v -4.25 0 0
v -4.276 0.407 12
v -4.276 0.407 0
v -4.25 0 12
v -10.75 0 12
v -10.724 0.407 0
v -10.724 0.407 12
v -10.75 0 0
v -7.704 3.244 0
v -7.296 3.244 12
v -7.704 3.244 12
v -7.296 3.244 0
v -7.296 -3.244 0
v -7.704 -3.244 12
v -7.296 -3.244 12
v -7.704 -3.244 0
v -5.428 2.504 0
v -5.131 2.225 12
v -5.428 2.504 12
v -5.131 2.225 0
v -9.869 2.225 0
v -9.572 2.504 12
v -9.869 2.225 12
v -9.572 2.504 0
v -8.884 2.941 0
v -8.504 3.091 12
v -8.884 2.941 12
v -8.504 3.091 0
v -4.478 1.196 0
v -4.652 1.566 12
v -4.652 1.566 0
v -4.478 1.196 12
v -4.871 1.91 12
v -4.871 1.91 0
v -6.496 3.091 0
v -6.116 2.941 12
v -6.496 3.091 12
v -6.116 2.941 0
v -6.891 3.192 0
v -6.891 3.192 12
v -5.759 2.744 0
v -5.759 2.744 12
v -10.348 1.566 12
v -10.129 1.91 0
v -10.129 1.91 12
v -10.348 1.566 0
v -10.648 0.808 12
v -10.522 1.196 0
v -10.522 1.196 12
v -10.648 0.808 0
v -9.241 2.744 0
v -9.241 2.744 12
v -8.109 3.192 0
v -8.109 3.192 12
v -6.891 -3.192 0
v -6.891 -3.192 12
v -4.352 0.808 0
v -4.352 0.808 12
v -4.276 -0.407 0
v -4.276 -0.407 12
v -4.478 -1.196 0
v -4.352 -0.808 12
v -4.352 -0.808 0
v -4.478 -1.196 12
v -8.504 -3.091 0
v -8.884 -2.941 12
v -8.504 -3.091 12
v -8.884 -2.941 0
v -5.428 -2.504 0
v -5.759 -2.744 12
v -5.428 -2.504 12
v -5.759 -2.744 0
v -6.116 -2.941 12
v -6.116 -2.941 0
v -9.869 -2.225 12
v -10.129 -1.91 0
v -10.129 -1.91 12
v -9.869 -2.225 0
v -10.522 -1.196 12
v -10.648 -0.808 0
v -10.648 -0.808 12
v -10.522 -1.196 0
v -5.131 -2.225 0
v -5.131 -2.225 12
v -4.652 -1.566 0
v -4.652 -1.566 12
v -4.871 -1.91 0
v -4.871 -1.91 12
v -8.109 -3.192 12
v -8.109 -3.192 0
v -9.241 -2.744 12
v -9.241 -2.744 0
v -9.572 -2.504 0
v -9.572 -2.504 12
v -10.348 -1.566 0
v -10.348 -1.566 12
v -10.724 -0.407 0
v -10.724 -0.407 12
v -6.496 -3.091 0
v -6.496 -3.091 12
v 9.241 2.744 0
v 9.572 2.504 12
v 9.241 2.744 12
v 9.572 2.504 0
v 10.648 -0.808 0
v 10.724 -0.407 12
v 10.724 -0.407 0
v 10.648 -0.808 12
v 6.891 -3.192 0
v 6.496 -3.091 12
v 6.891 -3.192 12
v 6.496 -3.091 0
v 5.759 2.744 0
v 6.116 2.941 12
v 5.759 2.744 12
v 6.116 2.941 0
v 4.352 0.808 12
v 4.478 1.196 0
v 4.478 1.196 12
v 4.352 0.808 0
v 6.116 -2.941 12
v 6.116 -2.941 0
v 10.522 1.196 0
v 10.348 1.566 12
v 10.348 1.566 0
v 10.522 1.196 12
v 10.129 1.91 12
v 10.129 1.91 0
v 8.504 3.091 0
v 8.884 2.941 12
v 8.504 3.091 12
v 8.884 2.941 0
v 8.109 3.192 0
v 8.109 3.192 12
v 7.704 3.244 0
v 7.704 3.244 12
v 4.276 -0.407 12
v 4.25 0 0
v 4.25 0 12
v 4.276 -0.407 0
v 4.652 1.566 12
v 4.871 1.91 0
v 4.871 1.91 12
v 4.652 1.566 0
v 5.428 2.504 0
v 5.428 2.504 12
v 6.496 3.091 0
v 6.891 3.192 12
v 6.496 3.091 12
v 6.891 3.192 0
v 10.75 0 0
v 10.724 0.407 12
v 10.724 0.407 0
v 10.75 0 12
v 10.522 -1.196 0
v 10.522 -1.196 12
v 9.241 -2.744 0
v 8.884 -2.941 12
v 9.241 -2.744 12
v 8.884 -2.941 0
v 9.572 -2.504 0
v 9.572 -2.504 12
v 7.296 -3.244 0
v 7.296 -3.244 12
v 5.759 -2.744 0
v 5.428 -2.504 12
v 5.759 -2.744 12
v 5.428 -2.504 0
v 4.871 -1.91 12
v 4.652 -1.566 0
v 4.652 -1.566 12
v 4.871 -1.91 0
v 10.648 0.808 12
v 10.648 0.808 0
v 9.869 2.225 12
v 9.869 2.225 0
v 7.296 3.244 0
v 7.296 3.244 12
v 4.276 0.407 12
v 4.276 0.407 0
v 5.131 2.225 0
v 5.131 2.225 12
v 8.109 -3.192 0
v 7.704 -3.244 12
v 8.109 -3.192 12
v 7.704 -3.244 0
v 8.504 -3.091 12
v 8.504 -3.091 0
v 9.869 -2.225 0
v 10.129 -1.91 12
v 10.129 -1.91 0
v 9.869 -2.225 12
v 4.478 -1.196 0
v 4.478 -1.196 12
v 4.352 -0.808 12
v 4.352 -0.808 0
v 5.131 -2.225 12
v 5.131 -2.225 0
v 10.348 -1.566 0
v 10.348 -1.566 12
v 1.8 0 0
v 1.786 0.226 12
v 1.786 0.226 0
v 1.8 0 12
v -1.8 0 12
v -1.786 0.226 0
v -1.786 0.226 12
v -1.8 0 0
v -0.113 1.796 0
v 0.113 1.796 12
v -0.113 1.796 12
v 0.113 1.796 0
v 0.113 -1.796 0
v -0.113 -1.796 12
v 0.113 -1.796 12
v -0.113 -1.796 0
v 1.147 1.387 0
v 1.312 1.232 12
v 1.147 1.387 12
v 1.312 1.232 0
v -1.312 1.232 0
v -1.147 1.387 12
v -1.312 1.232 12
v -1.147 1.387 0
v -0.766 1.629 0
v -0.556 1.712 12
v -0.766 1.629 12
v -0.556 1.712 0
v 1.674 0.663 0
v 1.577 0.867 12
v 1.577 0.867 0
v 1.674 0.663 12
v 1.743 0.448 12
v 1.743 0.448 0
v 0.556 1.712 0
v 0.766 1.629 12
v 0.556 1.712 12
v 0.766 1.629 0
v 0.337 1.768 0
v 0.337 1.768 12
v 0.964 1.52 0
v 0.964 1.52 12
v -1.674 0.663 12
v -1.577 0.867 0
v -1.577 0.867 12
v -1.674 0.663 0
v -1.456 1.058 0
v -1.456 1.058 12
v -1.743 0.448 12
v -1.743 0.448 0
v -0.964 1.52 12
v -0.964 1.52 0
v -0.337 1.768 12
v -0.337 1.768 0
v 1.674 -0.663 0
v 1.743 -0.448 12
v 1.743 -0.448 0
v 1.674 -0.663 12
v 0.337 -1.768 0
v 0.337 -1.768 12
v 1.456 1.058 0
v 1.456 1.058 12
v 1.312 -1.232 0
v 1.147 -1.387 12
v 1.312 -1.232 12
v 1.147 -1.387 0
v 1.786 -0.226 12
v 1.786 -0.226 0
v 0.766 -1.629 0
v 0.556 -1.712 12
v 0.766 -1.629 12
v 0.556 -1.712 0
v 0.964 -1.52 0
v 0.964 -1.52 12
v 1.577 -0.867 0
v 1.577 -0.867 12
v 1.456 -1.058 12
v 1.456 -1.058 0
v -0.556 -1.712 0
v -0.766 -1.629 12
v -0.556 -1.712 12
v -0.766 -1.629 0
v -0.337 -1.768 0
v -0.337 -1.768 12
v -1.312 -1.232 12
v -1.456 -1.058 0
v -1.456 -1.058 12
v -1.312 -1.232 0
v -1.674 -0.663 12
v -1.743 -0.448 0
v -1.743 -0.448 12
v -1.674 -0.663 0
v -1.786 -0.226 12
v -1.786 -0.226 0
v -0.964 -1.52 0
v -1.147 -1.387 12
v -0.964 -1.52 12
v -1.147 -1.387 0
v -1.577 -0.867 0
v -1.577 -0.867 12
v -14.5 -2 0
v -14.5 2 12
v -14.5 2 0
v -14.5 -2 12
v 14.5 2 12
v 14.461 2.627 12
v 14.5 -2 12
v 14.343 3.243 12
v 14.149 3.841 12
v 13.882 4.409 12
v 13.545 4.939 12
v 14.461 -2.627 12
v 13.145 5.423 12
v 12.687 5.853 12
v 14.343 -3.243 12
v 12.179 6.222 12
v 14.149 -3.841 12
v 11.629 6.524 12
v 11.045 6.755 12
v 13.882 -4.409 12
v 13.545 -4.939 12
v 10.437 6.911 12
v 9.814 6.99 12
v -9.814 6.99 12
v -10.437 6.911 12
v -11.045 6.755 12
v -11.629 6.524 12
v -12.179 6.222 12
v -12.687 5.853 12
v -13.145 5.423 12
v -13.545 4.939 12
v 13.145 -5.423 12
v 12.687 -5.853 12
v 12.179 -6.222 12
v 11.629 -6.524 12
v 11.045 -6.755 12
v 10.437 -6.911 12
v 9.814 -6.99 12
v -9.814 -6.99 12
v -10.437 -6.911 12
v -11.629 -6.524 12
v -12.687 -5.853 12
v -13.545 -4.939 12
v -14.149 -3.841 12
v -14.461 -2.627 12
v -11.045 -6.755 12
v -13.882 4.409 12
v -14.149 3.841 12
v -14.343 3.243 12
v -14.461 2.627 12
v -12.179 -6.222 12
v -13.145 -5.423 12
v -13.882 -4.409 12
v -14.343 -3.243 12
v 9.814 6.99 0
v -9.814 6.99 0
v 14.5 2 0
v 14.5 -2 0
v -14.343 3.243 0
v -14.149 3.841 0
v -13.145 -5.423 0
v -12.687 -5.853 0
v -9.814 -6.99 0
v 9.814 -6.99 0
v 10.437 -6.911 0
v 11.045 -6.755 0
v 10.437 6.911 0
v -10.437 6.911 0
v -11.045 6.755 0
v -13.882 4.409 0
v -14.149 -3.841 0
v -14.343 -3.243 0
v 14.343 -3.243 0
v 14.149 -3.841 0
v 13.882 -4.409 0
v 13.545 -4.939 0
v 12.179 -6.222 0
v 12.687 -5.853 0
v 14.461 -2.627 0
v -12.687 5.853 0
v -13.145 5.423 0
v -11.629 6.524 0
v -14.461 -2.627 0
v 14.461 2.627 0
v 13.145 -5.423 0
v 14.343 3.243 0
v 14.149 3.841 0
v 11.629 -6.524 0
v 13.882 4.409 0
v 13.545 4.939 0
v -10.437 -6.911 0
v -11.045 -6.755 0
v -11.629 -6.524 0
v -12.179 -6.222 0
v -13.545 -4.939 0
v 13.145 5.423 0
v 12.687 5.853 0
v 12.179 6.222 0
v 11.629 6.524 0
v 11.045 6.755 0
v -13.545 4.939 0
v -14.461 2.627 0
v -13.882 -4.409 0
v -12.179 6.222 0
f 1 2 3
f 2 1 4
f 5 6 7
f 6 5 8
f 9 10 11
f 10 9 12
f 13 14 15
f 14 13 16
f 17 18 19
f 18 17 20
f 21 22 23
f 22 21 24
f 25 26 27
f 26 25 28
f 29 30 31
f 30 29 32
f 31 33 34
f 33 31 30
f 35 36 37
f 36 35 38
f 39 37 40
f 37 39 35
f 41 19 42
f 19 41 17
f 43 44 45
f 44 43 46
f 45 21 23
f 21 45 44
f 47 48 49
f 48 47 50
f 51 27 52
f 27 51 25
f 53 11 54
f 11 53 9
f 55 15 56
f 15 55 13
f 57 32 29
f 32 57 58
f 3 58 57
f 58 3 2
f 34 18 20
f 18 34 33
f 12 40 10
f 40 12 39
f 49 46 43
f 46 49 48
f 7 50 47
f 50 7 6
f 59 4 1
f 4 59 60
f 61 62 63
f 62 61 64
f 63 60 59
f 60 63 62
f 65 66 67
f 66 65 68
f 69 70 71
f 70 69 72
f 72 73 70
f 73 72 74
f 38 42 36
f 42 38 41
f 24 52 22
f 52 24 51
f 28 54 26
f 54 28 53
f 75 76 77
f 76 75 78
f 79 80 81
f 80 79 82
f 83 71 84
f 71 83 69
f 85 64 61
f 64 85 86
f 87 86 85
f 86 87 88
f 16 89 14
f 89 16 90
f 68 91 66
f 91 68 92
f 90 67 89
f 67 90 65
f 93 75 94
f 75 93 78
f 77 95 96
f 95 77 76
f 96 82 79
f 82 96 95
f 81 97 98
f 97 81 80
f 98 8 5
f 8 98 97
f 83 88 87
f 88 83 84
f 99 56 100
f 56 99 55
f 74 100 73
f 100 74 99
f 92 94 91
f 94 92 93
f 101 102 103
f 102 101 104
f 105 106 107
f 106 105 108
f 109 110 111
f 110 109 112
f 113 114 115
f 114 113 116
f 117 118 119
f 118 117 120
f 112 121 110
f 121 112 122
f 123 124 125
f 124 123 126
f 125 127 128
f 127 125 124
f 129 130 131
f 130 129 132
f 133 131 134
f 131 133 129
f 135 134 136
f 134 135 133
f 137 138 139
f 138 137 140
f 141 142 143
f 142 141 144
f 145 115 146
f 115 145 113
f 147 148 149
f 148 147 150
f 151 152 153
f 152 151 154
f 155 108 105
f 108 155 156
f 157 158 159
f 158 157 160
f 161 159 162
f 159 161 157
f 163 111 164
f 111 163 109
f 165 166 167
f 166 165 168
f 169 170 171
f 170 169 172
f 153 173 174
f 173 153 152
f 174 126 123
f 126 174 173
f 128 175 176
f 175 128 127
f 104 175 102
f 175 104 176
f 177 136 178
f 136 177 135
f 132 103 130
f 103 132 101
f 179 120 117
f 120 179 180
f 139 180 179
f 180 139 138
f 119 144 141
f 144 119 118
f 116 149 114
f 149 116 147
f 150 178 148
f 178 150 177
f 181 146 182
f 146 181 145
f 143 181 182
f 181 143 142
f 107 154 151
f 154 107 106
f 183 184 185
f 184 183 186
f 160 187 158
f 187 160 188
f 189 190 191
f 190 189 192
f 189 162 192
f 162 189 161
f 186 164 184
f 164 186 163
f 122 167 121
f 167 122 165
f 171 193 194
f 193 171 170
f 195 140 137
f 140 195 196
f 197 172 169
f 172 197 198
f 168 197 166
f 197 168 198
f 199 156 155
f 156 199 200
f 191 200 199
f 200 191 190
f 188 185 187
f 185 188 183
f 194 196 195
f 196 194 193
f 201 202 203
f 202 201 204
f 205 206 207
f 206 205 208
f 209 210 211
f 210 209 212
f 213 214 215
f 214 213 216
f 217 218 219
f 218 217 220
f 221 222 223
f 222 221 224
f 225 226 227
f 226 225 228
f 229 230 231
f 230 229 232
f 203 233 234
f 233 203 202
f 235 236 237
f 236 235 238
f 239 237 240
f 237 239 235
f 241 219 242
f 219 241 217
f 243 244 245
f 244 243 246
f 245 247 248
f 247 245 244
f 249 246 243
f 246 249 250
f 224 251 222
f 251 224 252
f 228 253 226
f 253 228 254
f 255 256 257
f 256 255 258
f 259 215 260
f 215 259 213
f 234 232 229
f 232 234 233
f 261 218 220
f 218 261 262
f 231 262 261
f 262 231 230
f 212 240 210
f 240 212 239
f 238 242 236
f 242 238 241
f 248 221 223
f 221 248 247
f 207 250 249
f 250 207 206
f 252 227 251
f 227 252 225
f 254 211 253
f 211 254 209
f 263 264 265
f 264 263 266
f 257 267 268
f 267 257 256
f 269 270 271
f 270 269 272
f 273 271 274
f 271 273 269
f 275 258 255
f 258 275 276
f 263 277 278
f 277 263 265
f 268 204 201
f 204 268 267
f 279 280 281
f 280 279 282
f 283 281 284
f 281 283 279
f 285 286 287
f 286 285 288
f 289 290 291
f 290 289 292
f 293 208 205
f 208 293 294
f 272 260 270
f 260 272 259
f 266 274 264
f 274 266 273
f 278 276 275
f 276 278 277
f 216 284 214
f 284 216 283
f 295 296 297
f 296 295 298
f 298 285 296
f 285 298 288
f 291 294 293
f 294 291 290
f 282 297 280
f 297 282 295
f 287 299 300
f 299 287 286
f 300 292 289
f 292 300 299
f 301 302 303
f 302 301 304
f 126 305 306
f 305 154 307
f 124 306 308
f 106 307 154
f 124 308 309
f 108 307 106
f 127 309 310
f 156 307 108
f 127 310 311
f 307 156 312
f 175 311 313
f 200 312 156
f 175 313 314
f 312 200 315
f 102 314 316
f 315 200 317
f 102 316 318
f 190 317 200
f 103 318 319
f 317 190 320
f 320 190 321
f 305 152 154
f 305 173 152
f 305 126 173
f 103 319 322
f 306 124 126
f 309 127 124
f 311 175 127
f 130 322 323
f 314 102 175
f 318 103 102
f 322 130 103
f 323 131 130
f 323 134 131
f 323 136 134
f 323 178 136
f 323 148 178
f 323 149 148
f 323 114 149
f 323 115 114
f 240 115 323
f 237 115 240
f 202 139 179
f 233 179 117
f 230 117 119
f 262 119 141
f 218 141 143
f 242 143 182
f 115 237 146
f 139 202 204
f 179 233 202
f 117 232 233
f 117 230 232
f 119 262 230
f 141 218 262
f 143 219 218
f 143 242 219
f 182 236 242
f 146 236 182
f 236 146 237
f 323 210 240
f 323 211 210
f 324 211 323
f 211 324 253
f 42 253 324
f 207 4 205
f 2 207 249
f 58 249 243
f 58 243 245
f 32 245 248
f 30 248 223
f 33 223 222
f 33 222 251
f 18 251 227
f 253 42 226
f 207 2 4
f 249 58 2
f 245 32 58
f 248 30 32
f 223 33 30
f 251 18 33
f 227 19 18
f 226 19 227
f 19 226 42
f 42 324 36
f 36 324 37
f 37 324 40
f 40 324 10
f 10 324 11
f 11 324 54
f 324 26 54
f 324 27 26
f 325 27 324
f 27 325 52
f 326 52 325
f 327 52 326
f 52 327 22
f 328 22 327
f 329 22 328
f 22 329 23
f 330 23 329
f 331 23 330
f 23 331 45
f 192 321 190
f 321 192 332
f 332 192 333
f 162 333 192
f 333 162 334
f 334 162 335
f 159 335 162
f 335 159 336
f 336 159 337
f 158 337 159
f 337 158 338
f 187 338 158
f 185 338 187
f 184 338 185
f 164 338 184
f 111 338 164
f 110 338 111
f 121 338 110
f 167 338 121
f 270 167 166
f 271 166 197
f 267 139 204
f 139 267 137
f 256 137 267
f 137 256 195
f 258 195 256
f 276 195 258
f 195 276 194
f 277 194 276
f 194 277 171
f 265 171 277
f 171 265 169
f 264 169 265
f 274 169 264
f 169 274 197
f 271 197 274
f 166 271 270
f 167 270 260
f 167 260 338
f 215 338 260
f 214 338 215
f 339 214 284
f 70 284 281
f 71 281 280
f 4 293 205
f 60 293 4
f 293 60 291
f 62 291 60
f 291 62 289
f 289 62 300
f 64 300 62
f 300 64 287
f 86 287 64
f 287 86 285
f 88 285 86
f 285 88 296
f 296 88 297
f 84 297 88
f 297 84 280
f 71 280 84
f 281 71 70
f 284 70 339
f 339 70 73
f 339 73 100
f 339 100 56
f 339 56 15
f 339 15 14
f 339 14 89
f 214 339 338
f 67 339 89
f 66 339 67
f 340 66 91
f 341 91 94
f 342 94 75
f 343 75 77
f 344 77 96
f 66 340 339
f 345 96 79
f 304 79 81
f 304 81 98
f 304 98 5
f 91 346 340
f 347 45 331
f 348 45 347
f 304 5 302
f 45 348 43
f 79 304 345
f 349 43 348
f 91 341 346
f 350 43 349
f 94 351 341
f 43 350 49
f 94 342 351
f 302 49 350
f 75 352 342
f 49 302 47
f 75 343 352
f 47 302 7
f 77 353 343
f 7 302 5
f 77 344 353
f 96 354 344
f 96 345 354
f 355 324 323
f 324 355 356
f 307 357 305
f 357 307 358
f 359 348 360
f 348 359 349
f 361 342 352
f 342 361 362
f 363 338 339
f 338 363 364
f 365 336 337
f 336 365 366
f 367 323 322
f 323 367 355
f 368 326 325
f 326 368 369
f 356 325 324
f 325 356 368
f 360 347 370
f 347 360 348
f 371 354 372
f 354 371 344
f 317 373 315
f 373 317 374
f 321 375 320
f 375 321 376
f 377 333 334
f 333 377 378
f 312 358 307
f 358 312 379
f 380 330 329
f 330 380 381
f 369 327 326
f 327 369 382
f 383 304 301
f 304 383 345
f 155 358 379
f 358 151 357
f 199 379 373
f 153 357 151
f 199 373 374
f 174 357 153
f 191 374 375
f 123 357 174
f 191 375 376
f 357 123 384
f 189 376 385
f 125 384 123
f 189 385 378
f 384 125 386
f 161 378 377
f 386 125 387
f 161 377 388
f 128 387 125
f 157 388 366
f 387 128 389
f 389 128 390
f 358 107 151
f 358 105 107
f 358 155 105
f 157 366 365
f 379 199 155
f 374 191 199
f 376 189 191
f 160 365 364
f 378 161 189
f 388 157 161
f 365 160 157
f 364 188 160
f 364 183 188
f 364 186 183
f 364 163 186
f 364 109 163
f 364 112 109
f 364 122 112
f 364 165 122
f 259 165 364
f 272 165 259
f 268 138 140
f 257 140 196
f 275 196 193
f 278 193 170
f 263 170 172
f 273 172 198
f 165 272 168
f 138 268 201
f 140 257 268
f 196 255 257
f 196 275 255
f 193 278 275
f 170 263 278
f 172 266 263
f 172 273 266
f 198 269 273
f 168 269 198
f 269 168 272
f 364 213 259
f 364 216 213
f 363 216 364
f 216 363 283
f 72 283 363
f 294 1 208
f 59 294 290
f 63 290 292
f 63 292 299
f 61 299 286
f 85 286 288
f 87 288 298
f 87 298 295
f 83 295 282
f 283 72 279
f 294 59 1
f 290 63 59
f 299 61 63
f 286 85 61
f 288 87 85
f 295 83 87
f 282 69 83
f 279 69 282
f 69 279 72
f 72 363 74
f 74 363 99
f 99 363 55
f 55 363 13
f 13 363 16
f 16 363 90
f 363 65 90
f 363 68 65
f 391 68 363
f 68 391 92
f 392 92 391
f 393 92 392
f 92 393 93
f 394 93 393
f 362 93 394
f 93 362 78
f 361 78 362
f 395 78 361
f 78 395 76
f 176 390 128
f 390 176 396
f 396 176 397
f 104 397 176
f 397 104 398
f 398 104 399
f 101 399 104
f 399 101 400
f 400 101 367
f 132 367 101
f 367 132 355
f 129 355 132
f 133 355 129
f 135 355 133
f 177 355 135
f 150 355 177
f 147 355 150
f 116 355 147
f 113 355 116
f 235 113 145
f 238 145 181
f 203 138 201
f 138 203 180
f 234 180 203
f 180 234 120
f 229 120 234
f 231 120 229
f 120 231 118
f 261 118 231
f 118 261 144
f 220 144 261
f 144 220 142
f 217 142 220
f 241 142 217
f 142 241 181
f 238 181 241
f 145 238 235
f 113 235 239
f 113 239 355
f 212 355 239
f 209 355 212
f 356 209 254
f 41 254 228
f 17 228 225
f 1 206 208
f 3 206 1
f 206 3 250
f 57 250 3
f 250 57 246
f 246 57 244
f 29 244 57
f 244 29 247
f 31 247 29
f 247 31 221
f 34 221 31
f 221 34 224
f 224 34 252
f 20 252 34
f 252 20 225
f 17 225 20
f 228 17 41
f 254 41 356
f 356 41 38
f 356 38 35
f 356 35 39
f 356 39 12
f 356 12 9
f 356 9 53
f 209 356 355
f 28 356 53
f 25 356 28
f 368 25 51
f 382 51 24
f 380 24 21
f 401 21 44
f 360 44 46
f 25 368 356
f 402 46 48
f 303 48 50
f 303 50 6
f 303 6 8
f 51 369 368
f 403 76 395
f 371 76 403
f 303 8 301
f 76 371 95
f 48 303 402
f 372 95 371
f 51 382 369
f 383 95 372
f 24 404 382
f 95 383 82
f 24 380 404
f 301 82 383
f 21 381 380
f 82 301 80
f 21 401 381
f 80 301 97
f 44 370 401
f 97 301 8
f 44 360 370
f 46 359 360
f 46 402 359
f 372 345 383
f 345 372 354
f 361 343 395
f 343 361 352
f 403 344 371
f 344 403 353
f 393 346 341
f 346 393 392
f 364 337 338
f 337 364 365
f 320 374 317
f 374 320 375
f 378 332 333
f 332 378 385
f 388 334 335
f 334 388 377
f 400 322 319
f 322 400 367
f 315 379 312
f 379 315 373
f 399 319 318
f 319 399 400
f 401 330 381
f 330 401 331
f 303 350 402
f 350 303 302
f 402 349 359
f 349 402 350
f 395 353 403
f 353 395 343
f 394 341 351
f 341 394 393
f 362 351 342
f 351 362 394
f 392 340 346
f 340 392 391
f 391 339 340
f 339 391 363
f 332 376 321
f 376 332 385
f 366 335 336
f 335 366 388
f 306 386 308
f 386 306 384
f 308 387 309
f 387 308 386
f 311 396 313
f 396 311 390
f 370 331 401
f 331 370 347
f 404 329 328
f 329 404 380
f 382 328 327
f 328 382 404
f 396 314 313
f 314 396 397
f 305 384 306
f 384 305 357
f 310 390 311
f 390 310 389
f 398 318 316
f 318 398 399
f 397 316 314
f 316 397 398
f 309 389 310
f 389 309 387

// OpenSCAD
$fn = 50;


difference() {
	union() {
		translate(v = [0, 0, 0]) {
			rotate(a = [0, 0, 0]) {
				hull() {
					translate(v = [-9.5000000000, 2.0000000000, 0]) {
						rotate(a = [0, 0, 0]) {
							translate(v = [0, 0, 0]) {
								rotate(a = [0, 0, 0]) {
									cylinder(h = 12, r = 5);
								}
							}
						}
					}
					translate(v = [9.5000000000, 2.0000000000, 0]) {
						rotate(a = [0, 0, 0]) {
							translate(v = [0, 0, 0]) {
								rotate(a = [0, 0, 0]) {
									cylinder(h = 12, r = 5);
								}
							}
						}
					}
					translate(v = [-9.5000000000, -2.0000000000, 0]) {
						rotate(a = [0, 0, 0]) {
							translate(v = [0, 0, 0]) {
								rotate(a = [0, 0, 0]) {
									cylinder(h = 12, r = 5);
								}
							}
						}
					}
					translate(v = [9.5000000000, -2.0000000000, 0]) {
						rotate(a = [0, 0, 0]) {
							translate(v = [0, 0, 0]) {
								rotate(a = [0, 0, 0]) {
									cylinder(h = 12, r = 5);
								}
							}
						}
					}
				}
			}
		}
	}
	union() {
		translate(v = [-7.5000000000, 0.0000000000, 0]) {
			rotate(a = [0, 0, 0]) {
				translate(v = [0, 0, -50]) {
					rotate(a = [0, 0, 0]) {
						cylinder(h = 100, r = 3.2500000000);
					}
				}
			}
		}
		translate(v = [7.5000000000, 0.0000000000, 0]) {
			rotate(a = [0, 0, 0]) {
				translate(v = [0, 0, -50]) {
					rotate(a = [0, 0, 0]) {
						cylinder(h = 100, r = 3.2500000000);
					}
				}
			}
		}
		translate(v = [-7.5000000000, 0.0000000000, 0]) {
			rotate(a = [0, 0, 0]) {
				translate(v = [0, 0, -50]) {
					rotate(a = [0, 0, 0]) {
						cylinder(h = 100, r = 1.8000000000);
					}
				}
			}
		}
		translate(v = [0.0000000000, 0.0000000000, 0]) {
			rotate(a = [0, 0, 0]) {
				translate(v = [0, 0, -50]) {
					rotate(a = [0, 0, 0]) {
						cylinder(h = 100, r = 1.8000000000);
					}
				}
			}
		}
		translate(v = [7.5000000000, 0.0000000000, 0]) {
			rotate(a = [0, 0, 0]) {
				translate(v = [0, 0, -50]) {
					rotate(a = [0, 0, 0]) {
						cylinder(h = 100, r = 1.8000000000);
					}
				}
			}
		}
	}
}
